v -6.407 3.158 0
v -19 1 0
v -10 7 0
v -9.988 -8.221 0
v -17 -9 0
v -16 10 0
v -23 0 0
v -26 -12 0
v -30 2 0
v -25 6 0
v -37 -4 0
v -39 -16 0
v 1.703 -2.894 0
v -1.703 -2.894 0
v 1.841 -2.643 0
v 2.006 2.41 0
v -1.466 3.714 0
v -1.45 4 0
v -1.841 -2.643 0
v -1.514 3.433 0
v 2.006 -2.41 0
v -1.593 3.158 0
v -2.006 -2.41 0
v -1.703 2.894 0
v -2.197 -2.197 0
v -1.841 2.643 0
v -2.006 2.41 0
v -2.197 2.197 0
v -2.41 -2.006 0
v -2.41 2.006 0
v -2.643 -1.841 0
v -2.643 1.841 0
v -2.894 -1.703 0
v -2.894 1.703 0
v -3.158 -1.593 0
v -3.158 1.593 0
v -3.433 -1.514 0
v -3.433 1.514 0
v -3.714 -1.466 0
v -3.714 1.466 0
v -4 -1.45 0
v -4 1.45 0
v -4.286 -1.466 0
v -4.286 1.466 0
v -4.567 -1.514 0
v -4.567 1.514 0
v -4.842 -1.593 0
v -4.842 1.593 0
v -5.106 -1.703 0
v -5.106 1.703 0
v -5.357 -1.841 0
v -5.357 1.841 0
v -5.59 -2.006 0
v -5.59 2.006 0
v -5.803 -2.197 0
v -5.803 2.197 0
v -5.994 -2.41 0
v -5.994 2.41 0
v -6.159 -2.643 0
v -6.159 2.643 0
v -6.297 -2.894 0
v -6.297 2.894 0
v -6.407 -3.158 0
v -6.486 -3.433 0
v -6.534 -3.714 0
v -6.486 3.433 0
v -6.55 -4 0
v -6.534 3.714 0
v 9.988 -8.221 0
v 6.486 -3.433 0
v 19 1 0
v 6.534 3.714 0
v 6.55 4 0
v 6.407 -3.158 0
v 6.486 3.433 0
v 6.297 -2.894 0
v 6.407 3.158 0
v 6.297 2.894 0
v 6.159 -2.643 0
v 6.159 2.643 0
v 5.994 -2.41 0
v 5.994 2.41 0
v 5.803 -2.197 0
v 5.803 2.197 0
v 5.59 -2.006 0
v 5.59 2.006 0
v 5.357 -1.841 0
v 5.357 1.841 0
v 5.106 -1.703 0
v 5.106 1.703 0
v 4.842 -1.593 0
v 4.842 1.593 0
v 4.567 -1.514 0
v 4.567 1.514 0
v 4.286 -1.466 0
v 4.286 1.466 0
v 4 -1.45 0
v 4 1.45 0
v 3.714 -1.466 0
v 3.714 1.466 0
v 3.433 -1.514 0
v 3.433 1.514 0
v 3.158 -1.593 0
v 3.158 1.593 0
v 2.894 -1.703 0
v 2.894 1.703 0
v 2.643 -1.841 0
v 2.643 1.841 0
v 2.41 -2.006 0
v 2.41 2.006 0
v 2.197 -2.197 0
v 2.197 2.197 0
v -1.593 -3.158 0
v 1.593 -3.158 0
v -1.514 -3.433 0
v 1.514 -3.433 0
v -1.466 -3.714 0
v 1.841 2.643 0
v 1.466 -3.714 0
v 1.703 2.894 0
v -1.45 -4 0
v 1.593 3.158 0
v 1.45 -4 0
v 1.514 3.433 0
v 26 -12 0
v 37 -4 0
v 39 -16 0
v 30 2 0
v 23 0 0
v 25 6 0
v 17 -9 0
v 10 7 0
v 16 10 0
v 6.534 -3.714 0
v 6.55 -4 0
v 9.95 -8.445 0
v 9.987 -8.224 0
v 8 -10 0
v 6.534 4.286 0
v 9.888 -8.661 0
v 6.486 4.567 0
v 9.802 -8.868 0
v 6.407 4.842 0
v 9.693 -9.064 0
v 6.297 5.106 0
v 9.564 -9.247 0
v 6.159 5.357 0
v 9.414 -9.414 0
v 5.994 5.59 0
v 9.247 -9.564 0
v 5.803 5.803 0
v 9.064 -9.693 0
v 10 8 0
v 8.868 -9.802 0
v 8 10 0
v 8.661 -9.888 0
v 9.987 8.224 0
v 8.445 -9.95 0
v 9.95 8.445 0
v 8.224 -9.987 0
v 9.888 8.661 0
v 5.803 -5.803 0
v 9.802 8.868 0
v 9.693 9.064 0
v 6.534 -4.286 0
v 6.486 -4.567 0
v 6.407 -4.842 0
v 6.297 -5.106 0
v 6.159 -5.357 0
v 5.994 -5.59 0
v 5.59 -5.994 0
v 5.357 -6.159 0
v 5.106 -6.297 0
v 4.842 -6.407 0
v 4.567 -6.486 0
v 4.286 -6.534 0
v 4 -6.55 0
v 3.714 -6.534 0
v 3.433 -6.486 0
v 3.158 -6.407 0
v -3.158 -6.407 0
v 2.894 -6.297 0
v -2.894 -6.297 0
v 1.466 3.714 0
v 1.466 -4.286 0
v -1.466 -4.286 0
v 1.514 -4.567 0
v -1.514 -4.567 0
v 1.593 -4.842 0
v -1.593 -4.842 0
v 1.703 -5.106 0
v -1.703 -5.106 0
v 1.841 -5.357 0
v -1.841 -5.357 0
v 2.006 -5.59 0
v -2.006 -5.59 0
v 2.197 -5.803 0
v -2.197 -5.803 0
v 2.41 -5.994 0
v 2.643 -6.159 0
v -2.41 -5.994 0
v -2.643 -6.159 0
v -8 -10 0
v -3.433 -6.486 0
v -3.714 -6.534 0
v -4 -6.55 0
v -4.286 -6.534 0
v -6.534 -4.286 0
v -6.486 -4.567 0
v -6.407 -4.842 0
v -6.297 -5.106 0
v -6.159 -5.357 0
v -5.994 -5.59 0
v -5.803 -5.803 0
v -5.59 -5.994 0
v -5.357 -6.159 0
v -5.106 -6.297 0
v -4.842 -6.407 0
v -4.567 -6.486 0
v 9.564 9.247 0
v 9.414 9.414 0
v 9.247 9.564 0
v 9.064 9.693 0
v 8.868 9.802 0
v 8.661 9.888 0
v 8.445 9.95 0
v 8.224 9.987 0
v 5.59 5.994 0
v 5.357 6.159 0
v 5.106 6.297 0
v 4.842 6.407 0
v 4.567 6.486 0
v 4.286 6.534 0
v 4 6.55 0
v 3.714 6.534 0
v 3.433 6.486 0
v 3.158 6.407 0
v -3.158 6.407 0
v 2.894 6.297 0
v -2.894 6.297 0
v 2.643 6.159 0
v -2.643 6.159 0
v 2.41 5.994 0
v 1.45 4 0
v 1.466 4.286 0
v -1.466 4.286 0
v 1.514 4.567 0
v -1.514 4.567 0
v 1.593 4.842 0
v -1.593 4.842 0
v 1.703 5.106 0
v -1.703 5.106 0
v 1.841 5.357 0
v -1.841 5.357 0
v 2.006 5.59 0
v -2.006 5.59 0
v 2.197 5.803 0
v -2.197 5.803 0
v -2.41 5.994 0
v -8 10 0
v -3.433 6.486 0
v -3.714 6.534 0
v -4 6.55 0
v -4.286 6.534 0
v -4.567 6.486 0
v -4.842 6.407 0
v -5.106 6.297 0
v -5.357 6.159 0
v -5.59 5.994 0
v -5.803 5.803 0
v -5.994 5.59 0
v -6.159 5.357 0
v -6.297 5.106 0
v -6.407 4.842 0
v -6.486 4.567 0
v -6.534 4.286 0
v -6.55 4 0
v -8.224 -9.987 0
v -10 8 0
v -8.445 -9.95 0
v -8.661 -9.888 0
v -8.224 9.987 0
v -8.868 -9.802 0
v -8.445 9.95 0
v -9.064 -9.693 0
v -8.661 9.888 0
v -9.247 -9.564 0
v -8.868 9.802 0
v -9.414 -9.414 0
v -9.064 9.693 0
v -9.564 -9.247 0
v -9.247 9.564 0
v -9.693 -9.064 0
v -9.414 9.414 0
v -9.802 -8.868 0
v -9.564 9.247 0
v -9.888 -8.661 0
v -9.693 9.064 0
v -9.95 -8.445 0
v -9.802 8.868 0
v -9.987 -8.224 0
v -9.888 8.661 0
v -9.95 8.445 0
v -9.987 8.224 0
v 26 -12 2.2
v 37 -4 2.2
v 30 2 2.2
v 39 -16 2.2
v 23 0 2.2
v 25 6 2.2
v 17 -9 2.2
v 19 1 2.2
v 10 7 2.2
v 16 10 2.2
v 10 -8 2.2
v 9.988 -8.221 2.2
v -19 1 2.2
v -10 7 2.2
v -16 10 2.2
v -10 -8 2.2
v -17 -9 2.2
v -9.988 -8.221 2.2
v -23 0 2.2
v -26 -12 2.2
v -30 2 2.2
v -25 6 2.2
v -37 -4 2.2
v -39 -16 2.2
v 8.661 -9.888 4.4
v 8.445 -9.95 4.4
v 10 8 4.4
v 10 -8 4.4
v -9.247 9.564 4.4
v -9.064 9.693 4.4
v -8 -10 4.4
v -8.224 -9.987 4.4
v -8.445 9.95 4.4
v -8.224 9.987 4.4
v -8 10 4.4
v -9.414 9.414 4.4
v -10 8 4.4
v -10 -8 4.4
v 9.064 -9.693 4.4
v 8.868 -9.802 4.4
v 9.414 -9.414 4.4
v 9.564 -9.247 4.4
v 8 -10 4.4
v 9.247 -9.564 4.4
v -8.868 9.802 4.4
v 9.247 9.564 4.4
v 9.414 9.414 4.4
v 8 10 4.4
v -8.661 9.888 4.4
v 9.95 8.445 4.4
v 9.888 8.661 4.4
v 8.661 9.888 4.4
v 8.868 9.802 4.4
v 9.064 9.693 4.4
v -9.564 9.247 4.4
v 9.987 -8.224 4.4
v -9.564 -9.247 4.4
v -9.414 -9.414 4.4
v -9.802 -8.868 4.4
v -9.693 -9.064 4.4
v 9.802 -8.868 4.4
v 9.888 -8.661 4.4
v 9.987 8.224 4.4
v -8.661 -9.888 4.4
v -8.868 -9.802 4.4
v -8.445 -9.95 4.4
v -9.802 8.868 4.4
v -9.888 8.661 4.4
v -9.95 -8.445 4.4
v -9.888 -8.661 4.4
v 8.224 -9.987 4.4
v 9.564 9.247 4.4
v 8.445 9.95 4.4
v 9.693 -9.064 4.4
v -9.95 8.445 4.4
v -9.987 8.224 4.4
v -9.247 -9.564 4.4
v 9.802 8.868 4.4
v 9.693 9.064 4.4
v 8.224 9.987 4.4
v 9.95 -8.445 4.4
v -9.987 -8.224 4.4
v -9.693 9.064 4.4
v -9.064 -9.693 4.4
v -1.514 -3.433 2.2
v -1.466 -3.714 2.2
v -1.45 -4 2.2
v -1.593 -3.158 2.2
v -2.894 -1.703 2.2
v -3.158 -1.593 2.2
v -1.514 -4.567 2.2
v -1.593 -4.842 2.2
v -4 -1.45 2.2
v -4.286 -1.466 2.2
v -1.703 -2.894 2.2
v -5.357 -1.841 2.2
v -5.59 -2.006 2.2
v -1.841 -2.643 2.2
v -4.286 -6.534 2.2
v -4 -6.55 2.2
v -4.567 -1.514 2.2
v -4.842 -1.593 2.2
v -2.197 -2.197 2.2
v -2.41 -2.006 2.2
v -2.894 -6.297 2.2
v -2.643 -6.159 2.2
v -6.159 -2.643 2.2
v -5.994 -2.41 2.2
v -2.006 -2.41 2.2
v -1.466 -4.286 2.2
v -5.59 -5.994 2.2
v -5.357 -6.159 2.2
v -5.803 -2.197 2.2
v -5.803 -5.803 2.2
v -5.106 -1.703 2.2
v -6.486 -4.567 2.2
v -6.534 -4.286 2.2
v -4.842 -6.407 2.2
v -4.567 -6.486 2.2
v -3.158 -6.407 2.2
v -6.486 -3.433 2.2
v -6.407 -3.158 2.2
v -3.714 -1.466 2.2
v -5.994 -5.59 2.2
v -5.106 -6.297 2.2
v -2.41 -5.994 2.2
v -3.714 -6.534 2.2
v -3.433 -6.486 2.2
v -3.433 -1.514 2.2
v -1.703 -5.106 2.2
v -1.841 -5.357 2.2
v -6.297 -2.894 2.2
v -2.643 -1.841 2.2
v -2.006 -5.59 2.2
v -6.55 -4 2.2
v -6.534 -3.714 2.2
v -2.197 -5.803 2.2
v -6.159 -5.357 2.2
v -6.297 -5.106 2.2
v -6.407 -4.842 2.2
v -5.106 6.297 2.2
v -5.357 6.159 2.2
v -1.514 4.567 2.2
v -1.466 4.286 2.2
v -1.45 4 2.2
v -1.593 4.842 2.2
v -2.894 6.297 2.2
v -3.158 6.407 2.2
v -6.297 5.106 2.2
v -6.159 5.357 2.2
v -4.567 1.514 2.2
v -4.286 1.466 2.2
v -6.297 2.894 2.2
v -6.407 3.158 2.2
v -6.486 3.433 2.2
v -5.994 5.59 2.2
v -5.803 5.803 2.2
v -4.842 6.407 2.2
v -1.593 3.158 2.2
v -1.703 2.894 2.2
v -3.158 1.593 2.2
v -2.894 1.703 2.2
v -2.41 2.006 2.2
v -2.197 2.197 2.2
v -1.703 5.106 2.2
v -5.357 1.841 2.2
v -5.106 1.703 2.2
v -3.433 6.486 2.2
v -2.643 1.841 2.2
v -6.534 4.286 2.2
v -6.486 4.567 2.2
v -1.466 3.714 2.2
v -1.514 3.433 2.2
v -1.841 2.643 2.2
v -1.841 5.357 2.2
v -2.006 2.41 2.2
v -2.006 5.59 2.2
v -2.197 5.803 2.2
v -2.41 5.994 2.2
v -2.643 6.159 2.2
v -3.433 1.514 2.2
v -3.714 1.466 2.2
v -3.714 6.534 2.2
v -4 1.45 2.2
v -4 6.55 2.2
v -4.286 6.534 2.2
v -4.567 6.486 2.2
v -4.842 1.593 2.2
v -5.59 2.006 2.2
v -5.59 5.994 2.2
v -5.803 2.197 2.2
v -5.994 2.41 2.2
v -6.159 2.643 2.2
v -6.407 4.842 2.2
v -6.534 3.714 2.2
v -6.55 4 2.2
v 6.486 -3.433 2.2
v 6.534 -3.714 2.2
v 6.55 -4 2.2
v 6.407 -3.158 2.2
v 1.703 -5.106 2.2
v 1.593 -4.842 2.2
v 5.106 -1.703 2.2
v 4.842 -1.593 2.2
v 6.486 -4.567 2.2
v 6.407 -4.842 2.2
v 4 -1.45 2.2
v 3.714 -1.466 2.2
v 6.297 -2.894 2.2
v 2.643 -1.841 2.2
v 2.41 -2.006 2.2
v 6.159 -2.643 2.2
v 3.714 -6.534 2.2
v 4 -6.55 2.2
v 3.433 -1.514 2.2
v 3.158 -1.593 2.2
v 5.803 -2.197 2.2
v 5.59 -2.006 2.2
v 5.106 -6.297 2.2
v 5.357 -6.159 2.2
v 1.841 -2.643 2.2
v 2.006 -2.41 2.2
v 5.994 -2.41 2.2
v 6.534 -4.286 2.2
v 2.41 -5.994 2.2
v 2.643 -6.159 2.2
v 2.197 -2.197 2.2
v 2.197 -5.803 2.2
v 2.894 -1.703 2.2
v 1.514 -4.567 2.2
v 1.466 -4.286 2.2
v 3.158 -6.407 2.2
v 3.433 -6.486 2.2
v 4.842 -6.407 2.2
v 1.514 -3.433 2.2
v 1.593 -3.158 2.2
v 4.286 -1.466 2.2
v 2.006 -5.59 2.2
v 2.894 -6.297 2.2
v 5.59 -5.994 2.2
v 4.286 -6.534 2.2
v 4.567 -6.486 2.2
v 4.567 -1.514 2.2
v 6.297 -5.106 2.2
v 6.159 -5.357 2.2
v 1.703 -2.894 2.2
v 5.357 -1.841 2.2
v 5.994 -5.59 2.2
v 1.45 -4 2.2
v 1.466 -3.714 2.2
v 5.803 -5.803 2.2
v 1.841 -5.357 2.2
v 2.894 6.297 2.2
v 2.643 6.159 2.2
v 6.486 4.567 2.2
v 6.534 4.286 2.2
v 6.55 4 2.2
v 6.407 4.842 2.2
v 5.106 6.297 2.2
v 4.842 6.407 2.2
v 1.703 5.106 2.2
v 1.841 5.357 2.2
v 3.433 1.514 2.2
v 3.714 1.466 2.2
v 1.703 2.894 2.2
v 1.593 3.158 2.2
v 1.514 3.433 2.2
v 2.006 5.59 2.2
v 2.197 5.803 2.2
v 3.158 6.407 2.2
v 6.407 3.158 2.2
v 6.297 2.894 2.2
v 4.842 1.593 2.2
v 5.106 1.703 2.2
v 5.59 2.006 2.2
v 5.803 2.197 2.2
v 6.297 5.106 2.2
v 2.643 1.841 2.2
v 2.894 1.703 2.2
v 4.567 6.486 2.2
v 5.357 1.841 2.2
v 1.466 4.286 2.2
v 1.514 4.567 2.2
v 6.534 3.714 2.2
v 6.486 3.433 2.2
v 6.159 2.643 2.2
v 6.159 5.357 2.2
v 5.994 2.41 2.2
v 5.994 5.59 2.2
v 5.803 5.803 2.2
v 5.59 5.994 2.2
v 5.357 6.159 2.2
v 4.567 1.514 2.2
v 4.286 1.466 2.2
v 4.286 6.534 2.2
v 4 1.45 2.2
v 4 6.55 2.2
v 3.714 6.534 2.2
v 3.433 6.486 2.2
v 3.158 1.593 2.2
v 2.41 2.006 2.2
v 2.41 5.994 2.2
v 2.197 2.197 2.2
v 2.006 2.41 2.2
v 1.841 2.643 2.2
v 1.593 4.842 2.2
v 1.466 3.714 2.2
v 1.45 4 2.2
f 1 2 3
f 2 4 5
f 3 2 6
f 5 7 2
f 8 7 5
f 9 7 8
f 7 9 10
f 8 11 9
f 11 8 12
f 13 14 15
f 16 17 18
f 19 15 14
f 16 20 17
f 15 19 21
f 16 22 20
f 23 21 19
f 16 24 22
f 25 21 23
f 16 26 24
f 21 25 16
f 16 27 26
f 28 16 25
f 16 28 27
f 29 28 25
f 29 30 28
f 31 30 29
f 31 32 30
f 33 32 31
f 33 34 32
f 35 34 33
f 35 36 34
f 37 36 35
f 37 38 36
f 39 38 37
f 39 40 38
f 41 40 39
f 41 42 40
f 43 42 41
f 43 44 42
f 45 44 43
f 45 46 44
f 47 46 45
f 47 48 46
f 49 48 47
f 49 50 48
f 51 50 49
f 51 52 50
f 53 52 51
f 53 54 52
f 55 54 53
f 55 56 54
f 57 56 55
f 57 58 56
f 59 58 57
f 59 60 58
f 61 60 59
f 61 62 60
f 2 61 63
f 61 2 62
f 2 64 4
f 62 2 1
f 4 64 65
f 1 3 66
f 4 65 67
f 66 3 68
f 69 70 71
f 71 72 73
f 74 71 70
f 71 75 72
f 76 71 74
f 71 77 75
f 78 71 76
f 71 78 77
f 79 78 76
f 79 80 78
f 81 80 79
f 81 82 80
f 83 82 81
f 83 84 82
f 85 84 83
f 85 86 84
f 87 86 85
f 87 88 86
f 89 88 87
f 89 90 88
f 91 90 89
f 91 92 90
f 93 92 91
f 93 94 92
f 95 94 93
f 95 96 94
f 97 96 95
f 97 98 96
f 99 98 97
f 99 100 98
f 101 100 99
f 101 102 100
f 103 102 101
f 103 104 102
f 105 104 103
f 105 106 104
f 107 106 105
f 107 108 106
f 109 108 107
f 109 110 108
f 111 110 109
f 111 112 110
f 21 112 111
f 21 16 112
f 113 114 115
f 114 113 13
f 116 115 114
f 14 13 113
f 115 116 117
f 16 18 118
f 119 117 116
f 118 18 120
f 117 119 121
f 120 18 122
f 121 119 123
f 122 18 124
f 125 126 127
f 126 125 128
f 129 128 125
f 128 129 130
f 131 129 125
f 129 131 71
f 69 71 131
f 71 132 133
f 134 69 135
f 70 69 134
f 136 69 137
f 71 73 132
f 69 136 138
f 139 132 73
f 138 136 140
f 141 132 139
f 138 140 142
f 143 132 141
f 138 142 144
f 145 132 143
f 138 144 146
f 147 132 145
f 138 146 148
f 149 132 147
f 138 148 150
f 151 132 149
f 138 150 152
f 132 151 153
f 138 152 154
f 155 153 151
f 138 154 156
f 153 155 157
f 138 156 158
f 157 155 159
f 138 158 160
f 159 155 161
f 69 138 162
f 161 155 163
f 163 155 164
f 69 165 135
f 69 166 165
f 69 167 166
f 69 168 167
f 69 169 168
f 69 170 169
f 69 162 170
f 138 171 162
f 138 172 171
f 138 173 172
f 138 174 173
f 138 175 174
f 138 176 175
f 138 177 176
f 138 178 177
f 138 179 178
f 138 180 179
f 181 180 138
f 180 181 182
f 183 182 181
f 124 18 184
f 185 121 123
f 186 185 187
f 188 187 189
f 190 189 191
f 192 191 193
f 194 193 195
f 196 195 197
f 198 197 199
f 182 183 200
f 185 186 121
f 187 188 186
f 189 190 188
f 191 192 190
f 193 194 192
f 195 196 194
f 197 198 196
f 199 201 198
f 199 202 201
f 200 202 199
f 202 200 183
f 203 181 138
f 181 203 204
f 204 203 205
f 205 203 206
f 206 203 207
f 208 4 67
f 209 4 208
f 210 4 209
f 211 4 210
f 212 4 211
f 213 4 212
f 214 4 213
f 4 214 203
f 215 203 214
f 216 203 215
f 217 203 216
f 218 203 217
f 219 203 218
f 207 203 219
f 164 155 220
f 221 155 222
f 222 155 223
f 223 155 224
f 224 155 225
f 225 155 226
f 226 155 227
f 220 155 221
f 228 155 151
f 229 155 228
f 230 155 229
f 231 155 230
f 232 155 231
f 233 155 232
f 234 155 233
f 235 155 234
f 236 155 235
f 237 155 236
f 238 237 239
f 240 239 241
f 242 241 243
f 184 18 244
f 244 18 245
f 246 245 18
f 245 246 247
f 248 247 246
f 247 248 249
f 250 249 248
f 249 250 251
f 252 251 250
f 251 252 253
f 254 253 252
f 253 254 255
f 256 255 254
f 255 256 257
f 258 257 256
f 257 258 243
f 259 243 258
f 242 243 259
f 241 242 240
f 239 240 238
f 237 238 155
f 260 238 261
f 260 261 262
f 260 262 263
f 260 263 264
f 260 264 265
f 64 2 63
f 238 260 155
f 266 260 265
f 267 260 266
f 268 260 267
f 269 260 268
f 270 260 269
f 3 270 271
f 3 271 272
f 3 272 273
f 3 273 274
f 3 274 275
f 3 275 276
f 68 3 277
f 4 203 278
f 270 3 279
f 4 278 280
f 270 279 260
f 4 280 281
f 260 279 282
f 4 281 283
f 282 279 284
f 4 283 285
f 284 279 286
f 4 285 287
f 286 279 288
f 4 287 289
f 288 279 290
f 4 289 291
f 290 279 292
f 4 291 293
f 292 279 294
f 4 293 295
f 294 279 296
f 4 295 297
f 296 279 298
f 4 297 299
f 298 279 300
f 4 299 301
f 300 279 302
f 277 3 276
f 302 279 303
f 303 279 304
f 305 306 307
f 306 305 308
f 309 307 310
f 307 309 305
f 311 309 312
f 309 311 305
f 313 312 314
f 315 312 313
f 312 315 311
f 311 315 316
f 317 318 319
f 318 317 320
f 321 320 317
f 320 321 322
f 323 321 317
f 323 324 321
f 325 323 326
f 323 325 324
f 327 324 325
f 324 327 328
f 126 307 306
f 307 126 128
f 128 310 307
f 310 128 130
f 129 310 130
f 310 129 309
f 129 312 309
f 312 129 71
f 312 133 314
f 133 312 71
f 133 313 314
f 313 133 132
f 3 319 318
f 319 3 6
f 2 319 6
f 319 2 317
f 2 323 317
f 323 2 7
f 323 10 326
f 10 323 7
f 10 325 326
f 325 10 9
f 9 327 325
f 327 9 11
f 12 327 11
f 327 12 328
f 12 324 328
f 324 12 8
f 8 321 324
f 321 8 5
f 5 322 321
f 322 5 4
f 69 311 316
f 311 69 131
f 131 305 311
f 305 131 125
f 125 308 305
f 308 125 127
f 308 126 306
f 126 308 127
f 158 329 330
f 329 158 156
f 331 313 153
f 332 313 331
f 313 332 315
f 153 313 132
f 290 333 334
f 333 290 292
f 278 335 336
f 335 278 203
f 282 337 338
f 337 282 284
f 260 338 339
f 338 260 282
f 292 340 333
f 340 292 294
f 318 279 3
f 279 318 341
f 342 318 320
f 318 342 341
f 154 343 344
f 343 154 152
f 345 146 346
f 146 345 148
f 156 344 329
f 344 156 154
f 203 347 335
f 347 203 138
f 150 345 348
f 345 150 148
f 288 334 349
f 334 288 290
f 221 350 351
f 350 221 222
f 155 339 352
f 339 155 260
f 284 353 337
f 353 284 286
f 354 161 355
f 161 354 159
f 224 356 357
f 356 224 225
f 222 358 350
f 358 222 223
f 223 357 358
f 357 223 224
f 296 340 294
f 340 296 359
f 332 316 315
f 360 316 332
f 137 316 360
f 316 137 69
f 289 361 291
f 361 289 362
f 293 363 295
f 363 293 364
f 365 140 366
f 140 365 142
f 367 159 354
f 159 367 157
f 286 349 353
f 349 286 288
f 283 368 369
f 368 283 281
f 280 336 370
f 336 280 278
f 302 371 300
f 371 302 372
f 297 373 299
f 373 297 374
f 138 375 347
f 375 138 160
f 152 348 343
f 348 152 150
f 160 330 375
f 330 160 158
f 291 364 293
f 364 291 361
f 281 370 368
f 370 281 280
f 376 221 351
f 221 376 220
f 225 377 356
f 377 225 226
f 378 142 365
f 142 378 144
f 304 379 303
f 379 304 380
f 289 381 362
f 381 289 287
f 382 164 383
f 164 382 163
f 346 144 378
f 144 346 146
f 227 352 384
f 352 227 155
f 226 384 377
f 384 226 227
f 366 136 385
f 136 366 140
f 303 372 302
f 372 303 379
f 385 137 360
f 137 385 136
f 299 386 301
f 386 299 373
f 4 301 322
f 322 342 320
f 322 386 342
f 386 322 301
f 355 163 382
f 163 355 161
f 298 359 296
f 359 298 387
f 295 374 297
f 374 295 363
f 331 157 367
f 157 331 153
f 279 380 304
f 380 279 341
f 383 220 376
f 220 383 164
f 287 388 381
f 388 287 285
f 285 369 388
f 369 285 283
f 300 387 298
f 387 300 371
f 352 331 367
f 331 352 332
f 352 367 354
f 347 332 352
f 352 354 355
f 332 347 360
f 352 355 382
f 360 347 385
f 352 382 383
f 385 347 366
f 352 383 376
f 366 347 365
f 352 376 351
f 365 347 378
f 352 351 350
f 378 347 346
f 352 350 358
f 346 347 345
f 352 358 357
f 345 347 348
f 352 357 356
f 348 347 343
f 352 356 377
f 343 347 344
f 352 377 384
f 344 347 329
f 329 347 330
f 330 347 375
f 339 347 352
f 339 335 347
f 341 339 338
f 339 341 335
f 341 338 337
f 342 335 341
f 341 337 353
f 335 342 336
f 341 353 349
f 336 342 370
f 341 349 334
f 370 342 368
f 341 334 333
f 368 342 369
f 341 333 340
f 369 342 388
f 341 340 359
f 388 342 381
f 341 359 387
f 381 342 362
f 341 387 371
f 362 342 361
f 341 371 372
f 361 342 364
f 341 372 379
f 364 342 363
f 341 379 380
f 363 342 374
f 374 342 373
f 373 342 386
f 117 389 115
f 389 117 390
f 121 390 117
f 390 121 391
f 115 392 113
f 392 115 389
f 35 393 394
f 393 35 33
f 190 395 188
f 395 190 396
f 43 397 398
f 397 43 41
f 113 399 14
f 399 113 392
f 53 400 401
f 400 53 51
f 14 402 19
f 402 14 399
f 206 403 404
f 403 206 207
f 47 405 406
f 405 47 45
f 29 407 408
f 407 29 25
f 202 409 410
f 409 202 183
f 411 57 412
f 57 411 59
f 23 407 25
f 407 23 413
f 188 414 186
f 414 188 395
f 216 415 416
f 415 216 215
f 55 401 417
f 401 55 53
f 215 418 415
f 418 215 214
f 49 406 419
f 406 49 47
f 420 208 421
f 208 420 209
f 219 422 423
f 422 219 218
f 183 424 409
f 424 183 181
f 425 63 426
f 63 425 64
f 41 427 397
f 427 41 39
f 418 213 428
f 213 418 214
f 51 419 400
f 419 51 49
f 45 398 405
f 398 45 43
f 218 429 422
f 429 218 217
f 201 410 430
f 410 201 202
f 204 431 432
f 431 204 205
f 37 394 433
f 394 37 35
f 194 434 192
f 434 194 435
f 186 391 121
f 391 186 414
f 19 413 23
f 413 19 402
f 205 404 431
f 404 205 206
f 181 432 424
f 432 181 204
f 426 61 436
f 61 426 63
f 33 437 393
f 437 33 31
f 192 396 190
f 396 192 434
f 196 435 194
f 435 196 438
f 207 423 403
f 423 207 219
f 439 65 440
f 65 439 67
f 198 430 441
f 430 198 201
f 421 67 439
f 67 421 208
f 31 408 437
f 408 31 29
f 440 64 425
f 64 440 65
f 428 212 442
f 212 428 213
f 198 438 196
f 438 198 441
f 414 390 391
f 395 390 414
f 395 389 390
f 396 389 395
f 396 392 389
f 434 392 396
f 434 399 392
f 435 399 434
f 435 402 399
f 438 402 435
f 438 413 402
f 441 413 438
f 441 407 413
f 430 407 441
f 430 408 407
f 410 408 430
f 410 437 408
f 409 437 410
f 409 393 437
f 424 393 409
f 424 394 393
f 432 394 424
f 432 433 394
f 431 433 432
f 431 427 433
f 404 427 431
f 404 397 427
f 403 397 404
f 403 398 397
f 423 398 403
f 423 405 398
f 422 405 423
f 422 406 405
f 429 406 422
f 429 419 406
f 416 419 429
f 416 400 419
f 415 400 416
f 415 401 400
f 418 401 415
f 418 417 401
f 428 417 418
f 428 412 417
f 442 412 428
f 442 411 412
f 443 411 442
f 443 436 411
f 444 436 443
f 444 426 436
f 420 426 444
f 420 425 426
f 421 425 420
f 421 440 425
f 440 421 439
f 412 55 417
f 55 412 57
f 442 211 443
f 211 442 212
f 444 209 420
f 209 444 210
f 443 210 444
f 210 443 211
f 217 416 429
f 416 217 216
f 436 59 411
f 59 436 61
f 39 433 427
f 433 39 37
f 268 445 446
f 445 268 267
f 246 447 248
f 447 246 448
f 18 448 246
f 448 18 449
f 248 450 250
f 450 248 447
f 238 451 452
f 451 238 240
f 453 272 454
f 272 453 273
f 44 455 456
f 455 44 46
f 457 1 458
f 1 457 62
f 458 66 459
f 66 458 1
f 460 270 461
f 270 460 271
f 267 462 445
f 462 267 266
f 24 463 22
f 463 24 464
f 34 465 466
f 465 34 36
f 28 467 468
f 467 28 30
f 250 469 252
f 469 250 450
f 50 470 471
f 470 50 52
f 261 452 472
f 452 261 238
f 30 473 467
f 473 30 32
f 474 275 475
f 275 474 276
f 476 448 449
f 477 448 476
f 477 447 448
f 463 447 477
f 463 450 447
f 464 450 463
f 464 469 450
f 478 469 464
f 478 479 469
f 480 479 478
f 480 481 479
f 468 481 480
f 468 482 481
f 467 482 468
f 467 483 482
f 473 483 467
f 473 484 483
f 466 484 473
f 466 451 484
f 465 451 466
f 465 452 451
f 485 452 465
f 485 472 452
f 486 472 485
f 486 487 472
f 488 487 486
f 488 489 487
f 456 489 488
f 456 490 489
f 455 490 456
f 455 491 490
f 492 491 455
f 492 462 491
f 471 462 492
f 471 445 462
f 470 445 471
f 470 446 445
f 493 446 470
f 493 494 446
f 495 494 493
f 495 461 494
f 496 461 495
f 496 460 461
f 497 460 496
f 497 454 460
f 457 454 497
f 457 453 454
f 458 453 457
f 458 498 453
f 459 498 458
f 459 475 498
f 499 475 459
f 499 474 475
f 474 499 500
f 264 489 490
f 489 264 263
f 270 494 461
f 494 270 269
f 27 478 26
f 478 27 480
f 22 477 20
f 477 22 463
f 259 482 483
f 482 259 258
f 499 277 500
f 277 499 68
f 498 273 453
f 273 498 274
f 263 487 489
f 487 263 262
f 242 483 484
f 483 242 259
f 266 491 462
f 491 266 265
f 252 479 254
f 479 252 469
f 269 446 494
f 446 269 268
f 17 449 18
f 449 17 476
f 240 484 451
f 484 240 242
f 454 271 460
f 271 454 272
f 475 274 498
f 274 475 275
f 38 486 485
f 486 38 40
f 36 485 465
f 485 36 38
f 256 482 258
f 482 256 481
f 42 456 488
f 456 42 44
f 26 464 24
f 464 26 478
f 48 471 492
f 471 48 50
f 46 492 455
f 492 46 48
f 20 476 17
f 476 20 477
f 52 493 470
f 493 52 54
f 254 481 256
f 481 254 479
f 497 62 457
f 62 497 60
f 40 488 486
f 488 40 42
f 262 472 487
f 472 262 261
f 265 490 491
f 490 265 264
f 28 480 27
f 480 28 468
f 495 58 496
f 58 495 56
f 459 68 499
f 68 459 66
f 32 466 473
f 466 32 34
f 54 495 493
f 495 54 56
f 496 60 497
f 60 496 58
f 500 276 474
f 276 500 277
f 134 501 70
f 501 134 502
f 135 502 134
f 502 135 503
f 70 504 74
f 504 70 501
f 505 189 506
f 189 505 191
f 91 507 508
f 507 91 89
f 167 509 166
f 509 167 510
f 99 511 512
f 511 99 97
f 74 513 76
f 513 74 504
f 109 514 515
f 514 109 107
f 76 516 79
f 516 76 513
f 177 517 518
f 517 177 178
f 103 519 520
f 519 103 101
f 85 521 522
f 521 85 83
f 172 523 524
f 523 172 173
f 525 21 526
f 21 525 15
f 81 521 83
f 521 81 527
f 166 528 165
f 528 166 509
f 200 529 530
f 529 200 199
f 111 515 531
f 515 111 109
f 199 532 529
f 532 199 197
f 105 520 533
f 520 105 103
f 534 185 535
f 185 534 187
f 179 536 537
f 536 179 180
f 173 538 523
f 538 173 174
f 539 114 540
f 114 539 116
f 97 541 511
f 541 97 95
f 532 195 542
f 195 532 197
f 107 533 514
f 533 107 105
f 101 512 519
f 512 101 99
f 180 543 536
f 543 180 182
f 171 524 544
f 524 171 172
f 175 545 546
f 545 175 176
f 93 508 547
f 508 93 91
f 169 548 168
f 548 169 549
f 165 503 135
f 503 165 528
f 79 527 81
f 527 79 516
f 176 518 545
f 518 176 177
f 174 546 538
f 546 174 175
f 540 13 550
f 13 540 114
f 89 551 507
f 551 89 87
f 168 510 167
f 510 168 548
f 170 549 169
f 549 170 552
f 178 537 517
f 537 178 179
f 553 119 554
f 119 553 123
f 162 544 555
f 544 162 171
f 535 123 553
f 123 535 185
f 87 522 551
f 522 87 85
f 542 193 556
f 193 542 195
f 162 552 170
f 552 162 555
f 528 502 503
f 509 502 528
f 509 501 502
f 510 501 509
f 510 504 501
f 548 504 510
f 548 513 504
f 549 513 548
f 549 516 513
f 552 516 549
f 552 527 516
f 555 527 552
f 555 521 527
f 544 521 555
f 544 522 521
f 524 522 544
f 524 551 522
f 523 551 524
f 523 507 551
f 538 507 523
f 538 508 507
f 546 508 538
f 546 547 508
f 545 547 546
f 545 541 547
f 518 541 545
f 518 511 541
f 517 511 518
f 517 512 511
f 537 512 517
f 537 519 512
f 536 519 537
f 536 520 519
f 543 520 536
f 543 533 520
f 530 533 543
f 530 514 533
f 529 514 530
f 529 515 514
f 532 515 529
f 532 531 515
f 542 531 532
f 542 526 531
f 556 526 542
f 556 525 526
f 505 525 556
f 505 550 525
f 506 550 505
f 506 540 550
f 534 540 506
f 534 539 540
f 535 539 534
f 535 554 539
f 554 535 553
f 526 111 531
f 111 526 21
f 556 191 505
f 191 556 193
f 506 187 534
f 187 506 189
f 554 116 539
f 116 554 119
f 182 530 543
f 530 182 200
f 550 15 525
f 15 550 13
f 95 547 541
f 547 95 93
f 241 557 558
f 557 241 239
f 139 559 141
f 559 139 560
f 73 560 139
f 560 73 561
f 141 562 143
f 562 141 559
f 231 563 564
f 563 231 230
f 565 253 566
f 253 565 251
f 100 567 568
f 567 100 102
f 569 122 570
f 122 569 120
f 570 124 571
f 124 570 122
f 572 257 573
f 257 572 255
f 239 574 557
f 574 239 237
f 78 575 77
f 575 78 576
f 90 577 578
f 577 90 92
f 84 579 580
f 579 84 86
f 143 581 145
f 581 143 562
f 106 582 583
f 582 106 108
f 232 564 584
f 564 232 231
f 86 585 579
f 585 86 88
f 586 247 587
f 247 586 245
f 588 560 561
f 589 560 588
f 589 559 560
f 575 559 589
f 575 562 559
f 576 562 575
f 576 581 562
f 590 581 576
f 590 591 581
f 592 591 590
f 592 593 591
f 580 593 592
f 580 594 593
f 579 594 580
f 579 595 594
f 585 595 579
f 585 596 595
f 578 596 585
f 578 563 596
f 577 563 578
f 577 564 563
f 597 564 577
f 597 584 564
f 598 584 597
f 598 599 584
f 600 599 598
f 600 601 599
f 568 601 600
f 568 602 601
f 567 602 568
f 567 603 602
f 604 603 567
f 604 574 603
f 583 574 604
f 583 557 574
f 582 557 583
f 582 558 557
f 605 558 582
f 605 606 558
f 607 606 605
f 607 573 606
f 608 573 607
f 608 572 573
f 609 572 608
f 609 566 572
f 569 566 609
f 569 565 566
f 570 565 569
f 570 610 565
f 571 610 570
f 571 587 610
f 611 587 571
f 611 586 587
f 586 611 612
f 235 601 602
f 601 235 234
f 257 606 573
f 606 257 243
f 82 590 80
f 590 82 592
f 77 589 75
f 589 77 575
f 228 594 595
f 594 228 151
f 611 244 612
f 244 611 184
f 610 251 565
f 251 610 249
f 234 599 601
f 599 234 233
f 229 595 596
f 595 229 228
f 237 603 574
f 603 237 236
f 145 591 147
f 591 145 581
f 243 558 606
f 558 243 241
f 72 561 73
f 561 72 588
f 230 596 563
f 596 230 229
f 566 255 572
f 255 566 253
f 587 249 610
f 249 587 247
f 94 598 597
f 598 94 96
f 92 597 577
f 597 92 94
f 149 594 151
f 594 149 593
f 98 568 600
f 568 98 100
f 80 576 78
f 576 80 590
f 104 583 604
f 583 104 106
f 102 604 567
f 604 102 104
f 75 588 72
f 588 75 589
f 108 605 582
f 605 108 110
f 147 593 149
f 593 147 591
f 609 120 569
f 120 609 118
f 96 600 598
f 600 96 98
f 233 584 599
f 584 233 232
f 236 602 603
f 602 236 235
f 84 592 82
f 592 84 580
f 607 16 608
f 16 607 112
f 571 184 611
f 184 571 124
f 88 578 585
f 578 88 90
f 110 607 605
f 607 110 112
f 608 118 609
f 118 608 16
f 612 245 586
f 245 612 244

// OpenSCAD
/*
  Batwing-Heckspoiler – eigenes, parametrisches LEGO-kompatibles Modell
  FDM-Druck auf Bambu Lab A1 mit 0,2-mm-Duese
  Einheit: mm | Lizenz: CC0

  Annahme: vier freiliegende LEGO-Noppen im 2x2-Raster (8 mm Abstand)
  Befestigung per Steckpassung; keinerlei Aenderung an Originalteilen.

  Wenn die Passung zu locker ist: socket_d reduzieren (z.B. 5.05)
  Wenn sie zu stramm ist: socket_d erhoehen (z.B. 5.20)
  Nicht mit Gewalt auf LEGO-Noppen druecken.
*/
$fn = 56;

pitch          = 8.0;
socket_d       = 5.10; // nomineller Noppendurchmesser ca. 4,8 mm
socket_depth   = 2.20; // nominelle Noppenhoehe ca. 1,8 mm
body_width     = 20;
body_length    = 20;
body_height    = 4.40;
wing_height    = 2.20;
edge_radius    = 2.0;

// Rechte Fledermausfluegel-Kontur: Vorderkante -> Spitze -> Hinterkante
front = [[0,-6],[8,-8],[17,-9],[26,-12],[39,-16]];
back  = [[37,-4],[30,2],[25,6],[23,0],[19,1],[16,10],[10,7],[7,3],[0,7]];
wing_outline = concat(
    front,
    back,
    [for(i = [len(back)-2:-1:0]) [-back[i][0],back[i][1]]],
    [for(i = [len(front)-1:-1:1]) [-front[i][0],front[i][1]]]
);

module rounded_rectangle(w, h, r) {
    offset(r=r) square([w-2*r,h-2*r],center=true);
}

module wing() {
    linear_extrude(height=wing_height)
        polygon(points=wing_outline);
}

module central_body() {
    linear_extrude(height=body_height)
        rounded_rectangle(body_width,body_length,edge_radius);
}

module stud_sockets() {
    for (x = [-pitch/2, pitch/2], y = [-pitch/2, pitch/2])
        translate([x,y,-0.02])
            cylinder(h=socket_depth+0.02,d=socket_d);
}

// Zwei flache Versteifungen auf der Oberseite der Fluegel (keine Stuetze noetig)
module decorative_ribs() {
    for (side=[-1,1]) {
        translate([side*19,-5,wing_height])
            linear_extrude(height=0.60)
                offset(r=0.50)
                    polygon(points=[[0,0],[side*12,-6],[side*9,-4]]);
    }
}

// Fluegelform und Stecksockel starten beide auf dem Druckbett.
difference() {
    union() {
        wing();
        central_body();
        // Zierversteifungen bewusst weggelassen: ebene, leichter druckbare Oberseite.
    }
    stud_sockets();
}
